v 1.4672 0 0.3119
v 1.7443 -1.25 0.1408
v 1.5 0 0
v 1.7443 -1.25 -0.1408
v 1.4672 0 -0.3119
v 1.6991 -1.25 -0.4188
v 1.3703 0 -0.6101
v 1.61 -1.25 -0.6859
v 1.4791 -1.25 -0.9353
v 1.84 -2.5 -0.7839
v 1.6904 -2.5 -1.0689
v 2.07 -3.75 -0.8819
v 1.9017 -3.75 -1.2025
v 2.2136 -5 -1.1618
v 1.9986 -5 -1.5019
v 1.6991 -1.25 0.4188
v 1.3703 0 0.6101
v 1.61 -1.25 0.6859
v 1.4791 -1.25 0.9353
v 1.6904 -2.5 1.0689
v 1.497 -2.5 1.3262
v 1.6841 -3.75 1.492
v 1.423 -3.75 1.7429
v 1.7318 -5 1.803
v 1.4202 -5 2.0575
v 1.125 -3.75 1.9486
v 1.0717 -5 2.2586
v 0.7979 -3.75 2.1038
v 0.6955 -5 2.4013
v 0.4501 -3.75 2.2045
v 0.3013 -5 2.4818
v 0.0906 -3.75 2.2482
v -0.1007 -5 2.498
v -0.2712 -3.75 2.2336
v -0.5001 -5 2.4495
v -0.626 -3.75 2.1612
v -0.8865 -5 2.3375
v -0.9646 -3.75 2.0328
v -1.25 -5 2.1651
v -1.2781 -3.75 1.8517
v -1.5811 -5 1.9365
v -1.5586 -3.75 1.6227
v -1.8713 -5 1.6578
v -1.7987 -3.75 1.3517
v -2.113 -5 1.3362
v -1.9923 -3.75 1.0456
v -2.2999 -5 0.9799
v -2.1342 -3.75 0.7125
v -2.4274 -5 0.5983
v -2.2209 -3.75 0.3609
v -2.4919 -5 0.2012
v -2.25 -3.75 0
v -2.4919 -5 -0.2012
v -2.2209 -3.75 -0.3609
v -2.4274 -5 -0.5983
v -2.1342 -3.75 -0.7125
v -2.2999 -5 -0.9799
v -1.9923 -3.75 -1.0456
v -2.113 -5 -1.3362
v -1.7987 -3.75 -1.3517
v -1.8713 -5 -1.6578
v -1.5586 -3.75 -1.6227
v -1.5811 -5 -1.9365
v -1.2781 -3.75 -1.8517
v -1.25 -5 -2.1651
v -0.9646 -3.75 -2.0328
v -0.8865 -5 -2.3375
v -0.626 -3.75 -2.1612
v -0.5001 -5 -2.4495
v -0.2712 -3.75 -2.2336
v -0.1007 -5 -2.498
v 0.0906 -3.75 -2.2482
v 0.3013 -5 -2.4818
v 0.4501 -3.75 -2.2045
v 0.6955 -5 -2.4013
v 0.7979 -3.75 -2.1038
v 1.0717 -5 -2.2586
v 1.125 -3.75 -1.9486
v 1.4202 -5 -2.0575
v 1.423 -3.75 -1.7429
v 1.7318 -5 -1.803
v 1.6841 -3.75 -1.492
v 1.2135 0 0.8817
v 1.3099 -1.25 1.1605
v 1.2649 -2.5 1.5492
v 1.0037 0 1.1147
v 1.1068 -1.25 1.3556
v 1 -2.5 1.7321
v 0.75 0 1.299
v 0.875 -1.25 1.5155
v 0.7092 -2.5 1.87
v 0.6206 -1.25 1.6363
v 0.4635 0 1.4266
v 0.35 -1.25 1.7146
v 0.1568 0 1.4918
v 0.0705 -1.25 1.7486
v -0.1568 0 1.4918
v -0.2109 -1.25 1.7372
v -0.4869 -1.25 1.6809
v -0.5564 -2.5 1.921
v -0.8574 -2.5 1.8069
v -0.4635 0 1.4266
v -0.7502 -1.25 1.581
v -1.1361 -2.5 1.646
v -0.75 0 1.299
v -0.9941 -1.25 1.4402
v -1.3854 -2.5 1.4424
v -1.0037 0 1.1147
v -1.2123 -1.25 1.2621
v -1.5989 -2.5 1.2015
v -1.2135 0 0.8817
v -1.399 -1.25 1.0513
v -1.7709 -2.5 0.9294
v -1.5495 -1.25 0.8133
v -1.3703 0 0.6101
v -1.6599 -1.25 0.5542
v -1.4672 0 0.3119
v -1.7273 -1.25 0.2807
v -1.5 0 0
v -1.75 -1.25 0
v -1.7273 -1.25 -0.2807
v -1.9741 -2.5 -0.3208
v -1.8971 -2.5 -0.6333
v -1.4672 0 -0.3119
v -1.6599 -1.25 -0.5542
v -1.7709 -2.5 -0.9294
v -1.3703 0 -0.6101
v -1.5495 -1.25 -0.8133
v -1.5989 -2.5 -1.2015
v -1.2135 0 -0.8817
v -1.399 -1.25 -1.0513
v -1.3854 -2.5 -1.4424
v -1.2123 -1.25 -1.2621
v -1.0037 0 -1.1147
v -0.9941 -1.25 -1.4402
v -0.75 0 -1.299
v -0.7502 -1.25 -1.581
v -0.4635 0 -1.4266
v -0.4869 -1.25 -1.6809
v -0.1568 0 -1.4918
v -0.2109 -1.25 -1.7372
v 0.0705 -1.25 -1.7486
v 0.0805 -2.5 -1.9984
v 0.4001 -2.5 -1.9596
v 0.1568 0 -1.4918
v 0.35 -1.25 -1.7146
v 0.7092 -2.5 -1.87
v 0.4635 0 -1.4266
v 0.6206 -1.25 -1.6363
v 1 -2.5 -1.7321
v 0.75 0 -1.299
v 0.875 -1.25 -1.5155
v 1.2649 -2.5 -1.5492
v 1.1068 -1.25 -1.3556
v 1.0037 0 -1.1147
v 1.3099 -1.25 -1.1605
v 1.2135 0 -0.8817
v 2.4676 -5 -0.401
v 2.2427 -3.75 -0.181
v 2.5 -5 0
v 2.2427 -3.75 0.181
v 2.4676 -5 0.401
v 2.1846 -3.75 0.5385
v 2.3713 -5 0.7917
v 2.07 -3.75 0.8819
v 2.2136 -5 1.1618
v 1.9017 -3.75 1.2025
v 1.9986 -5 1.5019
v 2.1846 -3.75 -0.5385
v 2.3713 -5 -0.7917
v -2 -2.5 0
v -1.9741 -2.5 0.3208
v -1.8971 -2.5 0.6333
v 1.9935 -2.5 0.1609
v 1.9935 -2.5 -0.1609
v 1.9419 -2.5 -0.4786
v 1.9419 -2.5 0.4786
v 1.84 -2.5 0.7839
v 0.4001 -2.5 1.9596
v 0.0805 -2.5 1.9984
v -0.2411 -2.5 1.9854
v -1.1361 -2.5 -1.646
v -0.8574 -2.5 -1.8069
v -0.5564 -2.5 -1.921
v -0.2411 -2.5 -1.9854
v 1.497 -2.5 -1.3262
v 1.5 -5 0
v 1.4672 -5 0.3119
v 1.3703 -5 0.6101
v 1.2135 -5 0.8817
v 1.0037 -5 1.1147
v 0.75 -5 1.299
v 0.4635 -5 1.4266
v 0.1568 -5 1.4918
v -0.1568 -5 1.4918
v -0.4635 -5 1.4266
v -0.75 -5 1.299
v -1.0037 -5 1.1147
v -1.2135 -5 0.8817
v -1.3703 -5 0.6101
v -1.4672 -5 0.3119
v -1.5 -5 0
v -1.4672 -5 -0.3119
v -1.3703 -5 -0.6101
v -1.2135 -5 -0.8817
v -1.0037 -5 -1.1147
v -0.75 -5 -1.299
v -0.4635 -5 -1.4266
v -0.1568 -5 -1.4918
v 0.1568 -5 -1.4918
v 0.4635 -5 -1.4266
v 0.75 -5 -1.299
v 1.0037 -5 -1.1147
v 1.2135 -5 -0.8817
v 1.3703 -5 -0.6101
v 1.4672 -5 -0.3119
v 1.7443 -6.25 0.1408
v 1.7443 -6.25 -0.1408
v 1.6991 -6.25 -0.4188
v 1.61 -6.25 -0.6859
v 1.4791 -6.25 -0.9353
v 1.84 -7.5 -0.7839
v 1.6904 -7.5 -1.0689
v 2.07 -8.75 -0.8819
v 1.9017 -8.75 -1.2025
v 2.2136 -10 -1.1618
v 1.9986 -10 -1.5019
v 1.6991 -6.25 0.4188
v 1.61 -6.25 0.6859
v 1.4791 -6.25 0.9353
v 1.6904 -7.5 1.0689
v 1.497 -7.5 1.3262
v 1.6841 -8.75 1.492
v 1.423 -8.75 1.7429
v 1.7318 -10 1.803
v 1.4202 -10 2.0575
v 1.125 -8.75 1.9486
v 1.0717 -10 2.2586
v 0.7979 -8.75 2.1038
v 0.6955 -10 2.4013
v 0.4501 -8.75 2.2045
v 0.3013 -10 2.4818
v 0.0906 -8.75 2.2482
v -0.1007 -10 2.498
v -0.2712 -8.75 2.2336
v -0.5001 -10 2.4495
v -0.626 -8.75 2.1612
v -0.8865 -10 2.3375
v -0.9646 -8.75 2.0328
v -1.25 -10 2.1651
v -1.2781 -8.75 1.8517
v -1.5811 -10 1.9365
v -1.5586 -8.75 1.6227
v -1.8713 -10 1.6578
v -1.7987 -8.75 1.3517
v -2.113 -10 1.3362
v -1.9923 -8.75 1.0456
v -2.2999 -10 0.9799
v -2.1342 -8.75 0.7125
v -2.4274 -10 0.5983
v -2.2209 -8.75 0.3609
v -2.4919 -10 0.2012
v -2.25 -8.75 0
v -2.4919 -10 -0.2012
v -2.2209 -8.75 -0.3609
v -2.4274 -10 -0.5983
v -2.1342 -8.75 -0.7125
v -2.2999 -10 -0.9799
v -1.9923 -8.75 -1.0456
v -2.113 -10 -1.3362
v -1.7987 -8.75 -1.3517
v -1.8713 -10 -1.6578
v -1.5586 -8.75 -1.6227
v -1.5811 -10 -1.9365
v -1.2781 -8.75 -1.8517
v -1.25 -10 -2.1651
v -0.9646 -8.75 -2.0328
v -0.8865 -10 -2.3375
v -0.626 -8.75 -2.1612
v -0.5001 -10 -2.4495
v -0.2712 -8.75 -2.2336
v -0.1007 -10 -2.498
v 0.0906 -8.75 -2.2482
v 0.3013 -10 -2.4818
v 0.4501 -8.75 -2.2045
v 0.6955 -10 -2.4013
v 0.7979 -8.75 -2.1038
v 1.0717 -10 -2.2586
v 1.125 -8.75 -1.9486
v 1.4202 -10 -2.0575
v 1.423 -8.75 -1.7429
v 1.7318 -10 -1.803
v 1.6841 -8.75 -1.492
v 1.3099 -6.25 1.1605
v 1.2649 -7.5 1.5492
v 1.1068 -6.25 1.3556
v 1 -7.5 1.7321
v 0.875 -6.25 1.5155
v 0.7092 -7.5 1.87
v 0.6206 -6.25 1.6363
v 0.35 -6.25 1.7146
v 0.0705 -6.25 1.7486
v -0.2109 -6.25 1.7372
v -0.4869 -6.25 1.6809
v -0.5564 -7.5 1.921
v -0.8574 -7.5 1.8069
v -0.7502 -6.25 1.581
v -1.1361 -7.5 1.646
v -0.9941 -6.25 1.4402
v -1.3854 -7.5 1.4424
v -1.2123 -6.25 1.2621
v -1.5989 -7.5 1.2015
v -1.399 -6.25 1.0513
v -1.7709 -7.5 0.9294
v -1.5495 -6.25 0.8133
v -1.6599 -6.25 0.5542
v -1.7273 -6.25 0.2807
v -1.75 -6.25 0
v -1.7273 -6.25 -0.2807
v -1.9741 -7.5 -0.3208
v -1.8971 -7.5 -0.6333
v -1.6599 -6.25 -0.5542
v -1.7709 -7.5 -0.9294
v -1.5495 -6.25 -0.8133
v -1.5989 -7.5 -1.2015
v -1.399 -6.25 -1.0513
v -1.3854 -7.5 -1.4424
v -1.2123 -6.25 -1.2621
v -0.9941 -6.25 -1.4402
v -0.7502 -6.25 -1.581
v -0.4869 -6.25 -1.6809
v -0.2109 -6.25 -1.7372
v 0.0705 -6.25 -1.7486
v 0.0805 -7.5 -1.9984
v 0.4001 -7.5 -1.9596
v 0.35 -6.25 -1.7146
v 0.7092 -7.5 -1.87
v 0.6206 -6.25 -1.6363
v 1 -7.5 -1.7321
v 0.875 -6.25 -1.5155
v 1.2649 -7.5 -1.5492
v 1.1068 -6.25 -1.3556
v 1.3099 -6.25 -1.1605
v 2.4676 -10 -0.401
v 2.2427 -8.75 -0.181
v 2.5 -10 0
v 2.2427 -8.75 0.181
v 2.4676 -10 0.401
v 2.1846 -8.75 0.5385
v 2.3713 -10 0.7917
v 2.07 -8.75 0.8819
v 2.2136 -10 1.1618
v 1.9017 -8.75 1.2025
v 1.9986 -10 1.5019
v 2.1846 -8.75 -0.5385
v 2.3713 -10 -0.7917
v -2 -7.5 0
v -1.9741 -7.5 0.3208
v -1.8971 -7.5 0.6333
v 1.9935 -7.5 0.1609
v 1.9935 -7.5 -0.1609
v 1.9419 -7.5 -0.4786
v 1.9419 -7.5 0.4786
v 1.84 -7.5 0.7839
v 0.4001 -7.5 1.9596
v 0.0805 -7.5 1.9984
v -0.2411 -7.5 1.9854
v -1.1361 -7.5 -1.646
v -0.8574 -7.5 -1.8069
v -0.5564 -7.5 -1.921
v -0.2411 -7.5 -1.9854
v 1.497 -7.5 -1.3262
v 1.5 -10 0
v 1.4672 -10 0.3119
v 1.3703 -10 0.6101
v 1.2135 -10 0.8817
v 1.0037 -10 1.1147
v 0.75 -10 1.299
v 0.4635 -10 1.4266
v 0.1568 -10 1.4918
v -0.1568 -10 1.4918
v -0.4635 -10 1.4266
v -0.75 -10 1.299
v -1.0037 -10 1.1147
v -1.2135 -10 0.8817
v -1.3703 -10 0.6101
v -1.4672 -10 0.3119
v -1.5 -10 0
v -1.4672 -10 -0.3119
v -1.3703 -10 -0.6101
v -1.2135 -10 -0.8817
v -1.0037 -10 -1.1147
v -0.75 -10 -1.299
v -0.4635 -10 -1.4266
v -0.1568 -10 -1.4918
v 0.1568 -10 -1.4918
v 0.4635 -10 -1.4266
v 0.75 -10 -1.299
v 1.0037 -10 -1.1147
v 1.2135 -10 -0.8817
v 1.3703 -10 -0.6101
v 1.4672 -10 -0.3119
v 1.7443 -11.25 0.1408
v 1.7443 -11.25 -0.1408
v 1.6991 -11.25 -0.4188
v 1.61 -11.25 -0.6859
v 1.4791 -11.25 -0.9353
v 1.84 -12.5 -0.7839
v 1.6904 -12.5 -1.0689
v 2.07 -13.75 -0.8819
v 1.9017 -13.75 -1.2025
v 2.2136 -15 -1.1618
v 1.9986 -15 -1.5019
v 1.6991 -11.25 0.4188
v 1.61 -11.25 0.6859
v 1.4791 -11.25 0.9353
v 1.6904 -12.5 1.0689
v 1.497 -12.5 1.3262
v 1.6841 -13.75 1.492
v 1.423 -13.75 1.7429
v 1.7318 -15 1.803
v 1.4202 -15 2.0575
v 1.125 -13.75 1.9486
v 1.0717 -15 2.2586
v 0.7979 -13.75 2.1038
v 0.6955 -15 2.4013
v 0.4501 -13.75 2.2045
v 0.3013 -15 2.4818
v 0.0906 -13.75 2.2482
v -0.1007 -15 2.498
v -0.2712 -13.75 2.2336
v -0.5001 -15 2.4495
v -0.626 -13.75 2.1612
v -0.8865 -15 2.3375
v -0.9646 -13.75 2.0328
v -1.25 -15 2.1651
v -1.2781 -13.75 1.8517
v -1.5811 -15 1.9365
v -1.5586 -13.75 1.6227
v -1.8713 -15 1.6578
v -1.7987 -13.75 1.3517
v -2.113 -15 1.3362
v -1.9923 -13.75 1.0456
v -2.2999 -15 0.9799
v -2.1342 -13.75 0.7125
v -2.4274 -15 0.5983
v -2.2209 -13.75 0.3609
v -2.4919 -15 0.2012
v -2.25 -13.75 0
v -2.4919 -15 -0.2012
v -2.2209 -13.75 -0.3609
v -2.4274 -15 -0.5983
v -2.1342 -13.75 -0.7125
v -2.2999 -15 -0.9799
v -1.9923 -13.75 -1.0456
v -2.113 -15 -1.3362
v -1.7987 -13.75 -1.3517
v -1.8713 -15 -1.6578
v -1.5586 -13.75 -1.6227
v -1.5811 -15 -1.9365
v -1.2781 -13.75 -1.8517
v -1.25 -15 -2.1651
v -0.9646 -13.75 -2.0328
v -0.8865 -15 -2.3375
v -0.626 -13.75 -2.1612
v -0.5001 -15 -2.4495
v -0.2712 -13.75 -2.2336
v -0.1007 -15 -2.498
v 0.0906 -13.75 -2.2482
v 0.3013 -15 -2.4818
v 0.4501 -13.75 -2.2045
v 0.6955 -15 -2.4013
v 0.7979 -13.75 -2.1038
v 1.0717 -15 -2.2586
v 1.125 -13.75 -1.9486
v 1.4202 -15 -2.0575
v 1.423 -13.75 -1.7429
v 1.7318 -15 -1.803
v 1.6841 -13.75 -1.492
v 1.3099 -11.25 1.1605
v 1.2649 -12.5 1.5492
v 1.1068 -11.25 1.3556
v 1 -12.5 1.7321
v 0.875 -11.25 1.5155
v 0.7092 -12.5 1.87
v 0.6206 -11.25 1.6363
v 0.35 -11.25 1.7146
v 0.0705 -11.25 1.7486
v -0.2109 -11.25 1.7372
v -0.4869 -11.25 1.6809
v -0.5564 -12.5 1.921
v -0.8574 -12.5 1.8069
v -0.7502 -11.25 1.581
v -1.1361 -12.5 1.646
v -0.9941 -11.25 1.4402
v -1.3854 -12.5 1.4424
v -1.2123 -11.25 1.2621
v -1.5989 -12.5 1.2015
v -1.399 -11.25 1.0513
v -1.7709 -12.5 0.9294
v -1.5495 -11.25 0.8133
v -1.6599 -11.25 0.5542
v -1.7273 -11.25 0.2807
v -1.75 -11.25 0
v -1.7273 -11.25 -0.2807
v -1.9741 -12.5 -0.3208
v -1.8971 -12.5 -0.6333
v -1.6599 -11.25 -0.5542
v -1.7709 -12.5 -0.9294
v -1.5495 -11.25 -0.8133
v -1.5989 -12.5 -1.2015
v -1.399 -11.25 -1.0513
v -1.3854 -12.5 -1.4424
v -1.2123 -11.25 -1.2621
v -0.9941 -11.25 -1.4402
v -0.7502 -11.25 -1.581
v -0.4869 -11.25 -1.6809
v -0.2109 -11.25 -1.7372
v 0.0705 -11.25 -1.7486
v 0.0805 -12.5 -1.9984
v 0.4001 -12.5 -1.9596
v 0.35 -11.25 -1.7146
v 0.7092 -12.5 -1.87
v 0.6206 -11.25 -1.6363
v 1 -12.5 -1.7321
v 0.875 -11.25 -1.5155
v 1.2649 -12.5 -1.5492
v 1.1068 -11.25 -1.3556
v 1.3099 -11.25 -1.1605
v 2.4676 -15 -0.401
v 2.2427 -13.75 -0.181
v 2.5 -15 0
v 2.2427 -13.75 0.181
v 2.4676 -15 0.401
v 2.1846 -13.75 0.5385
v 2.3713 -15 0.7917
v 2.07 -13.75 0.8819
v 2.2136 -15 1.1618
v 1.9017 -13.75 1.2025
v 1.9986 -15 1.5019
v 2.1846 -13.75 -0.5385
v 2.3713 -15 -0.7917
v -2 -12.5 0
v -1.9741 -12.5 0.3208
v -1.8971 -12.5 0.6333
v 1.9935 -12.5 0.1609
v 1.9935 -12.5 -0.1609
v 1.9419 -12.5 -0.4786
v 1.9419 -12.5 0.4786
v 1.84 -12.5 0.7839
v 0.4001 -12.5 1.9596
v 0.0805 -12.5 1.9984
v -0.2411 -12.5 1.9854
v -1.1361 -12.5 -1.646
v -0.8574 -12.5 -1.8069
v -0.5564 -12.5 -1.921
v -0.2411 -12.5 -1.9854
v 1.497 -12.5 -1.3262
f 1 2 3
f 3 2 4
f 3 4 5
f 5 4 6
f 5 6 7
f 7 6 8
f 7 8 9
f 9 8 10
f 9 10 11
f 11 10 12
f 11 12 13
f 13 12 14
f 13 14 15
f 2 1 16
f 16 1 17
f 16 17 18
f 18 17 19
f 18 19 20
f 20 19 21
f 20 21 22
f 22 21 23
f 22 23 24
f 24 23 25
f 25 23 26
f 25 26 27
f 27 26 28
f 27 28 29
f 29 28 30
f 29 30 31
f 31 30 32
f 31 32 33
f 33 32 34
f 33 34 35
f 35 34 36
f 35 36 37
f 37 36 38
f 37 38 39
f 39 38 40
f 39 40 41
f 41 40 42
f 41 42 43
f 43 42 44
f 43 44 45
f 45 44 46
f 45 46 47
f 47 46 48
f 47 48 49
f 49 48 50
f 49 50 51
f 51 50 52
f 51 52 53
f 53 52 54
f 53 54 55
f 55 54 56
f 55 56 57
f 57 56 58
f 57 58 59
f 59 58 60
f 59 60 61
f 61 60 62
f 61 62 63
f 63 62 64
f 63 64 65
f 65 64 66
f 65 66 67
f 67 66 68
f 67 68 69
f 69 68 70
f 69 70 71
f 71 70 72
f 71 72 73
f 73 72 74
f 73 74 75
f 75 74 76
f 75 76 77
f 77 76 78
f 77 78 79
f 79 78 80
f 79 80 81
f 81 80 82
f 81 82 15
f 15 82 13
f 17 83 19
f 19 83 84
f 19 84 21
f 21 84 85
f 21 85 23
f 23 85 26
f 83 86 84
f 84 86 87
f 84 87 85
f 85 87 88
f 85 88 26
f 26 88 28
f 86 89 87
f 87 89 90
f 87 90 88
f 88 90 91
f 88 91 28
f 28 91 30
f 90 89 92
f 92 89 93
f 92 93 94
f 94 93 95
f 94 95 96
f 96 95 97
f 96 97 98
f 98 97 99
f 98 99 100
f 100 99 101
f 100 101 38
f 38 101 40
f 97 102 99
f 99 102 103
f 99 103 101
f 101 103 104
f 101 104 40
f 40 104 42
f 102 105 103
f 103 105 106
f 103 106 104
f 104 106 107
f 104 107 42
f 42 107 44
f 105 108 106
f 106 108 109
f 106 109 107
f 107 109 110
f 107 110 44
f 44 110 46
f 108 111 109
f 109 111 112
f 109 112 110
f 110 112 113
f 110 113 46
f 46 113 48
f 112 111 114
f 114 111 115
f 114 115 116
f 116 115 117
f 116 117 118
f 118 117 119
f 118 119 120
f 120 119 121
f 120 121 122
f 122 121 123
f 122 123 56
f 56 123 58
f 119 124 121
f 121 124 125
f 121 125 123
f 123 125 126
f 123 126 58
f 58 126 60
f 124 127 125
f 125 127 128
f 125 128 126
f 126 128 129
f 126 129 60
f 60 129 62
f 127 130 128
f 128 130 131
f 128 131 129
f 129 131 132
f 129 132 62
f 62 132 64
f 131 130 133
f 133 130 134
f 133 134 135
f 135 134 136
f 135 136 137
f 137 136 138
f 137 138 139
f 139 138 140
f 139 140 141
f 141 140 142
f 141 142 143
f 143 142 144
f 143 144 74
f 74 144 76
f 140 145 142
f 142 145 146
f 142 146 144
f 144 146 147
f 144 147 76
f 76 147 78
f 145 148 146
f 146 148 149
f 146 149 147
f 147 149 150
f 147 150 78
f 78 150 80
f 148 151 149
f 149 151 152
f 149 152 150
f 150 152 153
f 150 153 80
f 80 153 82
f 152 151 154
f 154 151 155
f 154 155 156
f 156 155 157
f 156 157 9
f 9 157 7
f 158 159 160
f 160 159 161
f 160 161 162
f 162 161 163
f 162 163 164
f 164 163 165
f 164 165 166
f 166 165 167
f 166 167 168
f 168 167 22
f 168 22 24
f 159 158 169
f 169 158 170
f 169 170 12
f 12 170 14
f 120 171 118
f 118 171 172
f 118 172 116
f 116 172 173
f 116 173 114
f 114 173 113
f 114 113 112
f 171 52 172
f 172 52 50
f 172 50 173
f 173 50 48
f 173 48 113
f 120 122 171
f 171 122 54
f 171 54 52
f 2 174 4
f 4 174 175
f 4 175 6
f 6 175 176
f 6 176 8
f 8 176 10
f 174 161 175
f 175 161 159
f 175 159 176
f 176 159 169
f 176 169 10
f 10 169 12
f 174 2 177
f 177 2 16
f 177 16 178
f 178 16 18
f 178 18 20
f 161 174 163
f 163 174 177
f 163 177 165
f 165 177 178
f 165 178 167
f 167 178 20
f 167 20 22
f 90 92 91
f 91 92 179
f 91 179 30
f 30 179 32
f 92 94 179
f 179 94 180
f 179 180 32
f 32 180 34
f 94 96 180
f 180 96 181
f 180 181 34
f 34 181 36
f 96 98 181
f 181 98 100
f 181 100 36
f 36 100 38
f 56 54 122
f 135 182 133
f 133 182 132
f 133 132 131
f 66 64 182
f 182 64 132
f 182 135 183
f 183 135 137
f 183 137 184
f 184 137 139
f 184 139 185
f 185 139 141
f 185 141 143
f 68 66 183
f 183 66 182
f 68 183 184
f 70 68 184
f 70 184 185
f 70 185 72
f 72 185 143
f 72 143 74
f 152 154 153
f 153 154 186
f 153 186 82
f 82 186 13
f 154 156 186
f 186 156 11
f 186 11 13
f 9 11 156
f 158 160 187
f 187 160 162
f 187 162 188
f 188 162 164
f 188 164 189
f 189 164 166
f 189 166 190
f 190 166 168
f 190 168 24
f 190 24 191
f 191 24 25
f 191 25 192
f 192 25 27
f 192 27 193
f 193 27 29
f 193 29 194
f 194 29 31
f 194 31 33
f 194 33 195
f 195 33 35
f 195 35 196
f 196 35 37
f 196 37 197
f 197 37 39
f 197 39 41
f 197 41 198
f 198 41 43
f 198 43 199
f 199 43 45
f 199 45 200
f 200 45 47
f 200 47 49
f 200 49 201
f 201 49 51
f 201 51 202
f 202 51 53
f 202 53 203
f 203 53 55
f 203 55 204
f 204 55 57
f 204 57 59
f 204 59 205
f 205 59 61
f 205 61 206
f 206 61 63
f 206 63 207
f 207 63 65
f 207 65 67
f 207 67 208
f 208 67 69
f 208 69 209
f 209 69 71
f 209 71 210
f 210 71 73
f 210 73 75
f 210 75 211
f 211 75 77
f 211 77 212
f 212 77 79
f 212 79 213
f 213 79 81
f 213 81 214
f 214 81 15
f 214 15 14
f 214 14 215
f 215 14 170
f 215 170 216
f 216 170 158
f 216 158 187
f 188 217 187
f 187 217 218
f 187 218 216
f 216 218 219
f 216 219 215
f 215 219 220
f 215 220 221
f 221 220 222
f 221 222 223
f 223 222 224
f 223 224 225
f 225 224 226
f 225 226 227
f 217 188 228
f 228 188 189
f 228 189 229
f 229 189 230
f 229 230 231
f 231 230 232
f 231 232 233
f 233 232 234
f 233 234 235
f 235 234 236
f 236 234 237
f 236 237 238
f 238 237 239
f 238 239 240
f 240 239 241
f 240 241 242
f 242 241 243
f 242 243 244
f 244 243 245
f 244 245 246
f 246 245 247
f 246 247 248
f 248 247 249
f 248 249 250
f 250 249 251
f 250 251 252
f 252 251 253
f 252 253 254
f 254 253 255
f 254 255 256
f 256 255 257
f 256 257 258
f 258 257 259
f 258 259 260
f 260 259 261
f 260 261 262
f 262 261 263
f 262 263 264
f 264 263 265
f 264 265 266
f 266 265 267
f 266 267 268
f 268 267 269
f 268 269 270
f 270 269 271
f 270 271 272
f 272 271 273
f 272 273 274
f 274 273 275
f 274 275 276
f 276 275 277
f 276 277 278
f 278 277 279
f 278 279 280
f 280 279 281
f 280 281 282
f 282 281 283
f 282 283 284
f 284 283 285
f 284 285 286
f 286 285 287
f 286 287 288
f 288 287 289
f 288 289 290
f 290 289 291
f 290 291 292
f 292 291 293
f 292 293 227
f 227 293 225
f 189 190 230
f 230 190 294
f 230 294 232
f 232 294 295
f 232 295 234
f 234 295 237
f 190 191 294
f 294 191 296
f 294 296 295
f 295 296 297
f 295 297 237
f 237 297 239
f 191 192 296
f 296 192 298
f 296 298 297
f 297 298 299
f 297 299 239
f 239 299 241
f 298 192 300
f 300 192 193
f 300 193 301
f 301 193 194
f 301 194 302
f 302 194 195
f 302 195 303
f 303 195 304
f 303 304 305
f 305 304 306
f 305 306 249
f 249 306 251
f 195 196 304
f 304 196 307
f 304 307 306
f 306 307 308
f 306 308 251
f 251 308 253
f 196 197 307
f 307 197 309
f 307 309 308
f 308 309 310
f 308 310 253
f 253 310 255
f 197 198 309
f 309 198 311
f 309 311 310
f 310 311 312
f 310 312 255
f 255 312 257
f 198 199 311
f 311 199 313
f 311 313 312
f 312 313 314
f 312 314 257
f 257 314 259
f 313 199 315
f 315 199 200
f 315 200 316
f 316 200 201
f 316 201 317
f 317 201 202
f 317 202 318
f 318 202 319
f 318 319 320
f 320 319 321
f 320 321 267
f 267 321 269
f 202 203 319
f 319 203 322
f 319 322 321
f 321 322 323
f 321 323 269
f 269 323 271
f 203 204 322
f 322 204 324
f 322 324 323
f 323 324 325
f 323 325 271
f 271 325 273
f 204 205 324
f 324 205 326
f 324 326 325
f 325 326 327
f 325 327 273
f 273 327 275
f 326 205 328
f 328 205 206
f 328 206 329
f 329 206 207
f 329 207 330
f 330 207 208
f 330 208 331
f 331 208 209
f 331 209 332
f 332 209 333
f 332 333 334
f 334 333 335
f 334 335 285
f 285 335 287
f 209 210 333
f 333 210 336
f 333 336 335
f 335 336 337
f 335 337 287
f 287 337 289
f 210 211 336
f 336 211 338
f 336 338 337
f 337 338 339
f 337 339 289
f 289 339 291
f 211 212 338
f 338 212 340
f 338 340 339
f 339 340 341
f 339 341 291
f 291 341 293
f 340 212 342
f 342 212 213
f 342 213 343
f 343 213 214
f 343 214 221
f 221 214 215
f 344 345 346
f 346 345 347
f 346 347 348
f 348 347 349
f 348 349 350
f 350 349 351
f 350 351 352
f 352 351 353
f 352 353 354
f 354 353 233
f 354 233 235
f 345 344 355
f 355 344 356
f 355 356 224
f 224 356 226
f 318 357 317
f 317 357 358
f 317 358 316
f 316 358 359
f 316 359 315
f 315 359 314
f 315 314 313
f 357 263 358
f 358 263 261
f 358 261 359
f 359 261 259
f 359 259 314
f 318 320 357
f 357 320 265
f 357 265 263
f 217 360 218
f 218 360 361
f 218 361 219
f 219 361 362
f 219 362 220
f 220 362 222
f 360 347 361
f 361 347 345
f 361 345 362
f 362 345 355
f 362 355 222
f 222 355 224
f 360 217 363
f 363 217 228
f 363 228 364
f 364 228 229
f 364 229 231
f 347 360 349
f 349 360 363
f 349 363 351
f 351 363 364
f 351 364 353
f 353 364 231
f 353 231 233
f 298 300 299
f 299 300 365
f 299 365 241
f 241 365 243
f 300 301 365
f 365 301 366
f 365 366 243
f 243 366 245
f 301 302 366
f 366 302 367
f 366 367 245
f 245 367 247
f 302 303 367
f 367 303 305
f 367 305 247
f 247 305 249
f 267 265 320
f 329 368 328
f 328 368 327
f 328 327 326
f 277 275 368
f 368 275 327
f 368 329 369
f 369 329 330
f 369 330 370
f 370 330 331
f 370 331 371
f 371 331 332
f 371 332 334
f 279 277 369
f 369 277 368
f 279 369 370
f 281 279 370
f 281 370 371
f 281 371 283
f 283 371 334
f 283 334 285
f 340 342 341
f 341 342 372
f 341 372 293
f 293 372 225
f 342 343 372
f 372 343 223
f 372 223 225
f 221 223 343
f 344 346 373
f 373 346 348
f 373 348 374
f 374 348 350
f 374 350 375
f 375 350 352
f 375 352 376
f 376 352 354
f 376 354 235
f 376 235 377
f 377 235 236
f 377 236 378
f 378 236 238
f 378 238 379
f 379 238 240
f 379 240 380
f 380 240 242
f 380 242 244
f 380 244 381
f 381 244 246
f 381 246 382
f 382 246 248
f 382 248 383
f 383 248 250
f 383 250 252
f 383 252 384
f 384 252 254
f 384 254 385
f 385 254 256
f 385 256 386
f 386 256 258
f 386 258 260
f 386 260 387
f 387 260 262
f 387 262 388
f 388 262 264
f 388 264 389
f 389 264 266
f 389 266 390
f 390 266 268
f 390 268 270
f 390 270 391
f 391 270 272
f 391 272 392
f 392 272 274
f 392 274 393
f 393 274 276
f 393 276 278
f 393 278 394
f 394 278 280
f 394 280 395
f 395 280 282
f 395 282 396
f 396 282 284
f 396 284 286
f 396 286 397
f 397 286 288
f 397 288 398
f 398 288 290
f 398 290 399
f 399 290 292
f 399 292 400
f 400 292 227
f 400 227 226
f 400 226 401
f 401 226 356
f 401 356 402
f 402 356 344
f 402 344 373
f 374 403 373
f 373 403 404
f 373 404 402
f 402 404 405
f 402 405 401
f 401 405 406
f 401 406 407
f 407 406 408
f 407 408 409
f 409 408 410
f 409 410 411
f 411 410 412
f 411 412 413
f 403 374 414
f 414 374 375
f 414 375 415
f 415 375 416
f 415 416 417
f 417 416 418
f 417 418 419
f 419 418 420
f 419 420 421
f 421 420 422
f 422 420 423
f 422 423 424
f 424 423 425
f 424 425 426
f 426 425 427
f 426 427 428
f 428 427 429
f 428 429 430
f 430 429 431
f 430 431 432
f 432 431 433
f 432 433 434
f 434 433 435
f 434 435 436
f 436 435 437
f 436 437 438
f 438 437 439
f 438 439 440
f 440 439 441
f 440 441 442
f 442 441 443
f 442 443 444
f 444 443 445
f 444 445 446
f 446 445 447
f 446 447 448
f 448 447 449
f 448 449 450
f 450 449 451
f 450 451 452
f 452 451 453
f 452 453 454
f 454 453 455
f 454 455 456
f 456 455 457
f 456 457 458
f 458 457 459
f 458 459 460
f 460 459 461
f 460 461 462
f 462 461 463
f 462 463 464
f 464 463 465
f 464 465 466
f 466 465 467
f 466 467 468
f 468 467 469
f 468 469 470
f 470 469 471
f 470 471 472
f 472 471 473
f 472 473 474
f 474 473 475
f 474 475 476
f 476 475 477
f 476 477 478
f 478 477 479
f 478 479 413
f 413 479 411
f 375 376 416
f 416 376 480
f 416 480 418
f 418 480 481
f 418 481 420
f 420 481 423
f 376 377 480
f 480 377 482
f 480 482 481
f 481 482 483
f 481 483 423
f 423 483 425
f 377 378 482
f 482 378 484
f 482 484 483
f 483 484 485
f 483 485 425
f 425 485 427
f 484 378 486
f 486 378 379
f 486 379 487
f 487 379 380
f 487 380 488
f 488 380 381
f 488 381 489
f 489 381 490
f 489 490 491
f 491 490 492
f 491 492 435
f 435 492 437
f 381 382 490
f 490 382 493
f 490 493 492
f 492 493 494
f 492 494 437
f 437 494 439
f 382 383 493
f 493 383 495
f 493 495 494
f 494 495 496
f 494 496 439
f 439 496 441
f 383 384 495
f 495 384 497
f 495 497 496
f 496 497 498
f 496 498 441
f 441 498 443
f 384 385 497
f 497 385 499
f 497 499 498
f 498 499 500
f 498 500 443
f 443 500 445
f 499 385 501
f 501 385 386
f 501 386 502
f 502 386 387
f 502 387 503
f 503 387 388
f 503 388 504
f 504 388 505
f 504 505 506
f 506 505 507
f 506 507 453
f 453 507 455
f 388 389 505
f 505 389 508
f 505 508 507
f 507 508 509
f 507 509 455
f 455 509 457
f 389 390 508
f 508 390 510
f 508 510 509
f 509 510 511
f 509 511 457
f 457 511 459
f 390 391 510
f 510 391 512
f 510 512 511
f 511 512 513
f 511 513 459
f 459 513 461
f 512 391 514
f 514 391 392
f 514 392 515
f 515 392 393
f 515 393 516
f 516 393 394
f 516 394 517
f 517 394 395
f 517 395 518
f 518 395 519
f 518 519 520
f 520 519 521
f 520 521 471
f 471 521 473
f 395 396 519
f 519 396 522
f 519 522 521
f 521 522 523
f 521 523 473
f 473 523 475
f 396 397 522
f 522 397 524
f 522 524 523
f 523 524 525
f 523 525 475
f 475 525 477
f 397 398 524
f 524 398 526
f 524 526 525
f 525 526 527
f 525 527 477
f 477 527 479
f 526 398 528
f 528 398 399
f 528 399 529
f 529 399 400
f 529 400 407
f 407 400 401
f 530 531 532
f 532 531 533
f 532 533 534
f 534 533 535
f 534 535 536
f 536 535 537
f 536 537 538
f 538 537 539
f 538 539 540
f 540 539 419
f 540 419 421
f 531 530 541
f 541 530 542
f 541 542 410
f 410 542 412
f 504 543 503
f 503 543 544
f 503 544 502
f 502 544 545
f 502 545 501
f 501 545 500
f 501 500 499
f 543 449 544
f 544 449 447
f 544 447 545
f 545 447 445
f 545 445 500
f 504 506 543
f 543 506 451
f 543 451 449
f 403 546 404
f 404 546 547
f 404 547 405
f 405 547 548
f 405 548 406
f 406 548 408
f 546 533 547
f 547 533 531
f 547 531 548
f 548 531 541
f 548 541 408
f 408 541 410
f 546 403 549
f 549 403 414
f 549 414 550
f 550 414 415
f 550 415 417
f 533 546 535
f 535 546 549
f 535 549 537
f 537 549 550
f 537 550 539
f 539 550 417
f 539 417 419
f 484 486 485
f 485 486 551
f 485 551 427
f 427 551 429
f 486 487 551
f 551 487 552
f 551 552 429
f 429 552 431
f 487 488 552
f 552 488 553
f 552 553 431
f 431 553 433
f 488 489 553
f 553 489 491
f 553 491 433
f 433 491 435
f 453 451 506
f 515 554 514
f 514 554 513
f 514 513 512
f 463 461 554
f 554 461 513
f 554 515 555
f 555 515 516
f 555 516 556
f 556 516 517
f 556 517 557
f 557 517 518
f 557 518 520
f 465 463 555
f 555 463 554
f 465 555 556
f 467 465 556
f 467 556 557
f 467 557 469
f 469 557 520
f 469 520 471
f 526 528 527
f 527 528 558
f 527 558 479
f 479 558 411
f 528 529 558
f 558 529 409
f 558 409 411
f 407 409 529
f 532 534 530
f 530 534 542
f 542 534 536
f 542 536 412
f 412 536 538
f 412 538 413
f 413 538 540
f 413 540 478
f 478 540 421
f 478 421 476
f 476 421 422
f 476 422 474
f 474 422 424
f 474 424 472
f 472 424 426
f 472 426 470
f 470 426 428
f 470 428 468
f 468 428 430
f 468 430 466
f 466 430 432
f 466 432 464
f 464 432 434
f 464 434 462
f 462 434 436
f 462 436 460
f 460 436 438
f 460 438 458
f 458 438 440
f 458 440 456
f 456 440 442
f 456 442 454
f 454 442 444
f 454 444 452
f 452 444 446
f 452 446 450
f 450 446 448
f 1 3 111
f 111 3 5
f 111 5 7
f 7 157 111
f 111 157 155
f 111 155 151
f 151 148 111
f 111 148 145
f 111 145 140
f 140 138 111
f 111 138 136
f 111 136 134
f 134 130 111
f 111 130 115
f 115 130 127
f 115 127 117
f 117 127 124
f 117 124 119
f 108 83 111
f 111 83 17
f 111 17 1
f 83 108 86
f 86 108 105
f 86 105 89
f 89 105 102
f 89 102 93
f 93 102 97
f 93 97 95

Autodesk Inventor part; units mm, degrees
ref_plane "YZ Plane" through (0, 0, 0) normal (1, 0, 0) x (0, 1, 0)
ref_plane "XZ Plane" through (0, 0, 0) normal (0, 1, 0) x (-1, 0, 0)
ref_plane "XY Plane" through (0, 0, 0) normal (0, 0, 1) x (1, 0, 0)
sketch "Sketch1" plane through (0, 0, 0) normal (0, 0, 1) x (1, 0, 0)
  line L0 (-1.5, 0) -> (1.5, 0)
  line L1 (-2.5, -15) -> (2.5, -15)
  line L2 (-1.5, 0) -> (-2.5, -5)
  line L3 (1.5, 0) -> (2.5, -5)
  line L4 (1.5, -5) -> (1.5, -5)
  line L5 (-2.5, -10) -> (-1.5, -5)
  line L6 (1.5, -5) -> (2.5, -10)
  line L7 (-1.5, -10) -> (-1.5, -10)
  line L8 (1.5, -10) -> (2.5, -15)
  line L9 (-1.5, -10) -> (-2.5, -15)
  line L10 (1.5, -10) -> (2.5, -15)
  line L11 (0, 0) -> (0, -15)
  line L12 (-2.5, -10) -> (2.5, -10)
  line L13 (-2.5, -5) -> (2.5, -5)
  point P0 (0, -5)
  point P1 (0, -10)
  point P2 (0, -5)
  point P3 (0, -10)
  point P4 (1.9444, -10)
  dimension "d1" = 5
  dimension "d5" = 5
  dimension "d15" = 5
  dimension "d16" = 1.5
  dimension "d17" = 1.5
  dimension "d18" = 1.5
  dimension "d19" = 1.5
  dimension "d20" = 5
  dimension "d21" = 5
  dimension "d22" = 5
revolve "Revolution1" add sketch "Sketch1" angle 360 about axis through (0, 0, 0) along (0, -1, 0) contours L0 L3 L13 L11 | L13 L6 L12 L11 | L12 L8 L1 L11
properties part number "Valve_Plug_V2"
